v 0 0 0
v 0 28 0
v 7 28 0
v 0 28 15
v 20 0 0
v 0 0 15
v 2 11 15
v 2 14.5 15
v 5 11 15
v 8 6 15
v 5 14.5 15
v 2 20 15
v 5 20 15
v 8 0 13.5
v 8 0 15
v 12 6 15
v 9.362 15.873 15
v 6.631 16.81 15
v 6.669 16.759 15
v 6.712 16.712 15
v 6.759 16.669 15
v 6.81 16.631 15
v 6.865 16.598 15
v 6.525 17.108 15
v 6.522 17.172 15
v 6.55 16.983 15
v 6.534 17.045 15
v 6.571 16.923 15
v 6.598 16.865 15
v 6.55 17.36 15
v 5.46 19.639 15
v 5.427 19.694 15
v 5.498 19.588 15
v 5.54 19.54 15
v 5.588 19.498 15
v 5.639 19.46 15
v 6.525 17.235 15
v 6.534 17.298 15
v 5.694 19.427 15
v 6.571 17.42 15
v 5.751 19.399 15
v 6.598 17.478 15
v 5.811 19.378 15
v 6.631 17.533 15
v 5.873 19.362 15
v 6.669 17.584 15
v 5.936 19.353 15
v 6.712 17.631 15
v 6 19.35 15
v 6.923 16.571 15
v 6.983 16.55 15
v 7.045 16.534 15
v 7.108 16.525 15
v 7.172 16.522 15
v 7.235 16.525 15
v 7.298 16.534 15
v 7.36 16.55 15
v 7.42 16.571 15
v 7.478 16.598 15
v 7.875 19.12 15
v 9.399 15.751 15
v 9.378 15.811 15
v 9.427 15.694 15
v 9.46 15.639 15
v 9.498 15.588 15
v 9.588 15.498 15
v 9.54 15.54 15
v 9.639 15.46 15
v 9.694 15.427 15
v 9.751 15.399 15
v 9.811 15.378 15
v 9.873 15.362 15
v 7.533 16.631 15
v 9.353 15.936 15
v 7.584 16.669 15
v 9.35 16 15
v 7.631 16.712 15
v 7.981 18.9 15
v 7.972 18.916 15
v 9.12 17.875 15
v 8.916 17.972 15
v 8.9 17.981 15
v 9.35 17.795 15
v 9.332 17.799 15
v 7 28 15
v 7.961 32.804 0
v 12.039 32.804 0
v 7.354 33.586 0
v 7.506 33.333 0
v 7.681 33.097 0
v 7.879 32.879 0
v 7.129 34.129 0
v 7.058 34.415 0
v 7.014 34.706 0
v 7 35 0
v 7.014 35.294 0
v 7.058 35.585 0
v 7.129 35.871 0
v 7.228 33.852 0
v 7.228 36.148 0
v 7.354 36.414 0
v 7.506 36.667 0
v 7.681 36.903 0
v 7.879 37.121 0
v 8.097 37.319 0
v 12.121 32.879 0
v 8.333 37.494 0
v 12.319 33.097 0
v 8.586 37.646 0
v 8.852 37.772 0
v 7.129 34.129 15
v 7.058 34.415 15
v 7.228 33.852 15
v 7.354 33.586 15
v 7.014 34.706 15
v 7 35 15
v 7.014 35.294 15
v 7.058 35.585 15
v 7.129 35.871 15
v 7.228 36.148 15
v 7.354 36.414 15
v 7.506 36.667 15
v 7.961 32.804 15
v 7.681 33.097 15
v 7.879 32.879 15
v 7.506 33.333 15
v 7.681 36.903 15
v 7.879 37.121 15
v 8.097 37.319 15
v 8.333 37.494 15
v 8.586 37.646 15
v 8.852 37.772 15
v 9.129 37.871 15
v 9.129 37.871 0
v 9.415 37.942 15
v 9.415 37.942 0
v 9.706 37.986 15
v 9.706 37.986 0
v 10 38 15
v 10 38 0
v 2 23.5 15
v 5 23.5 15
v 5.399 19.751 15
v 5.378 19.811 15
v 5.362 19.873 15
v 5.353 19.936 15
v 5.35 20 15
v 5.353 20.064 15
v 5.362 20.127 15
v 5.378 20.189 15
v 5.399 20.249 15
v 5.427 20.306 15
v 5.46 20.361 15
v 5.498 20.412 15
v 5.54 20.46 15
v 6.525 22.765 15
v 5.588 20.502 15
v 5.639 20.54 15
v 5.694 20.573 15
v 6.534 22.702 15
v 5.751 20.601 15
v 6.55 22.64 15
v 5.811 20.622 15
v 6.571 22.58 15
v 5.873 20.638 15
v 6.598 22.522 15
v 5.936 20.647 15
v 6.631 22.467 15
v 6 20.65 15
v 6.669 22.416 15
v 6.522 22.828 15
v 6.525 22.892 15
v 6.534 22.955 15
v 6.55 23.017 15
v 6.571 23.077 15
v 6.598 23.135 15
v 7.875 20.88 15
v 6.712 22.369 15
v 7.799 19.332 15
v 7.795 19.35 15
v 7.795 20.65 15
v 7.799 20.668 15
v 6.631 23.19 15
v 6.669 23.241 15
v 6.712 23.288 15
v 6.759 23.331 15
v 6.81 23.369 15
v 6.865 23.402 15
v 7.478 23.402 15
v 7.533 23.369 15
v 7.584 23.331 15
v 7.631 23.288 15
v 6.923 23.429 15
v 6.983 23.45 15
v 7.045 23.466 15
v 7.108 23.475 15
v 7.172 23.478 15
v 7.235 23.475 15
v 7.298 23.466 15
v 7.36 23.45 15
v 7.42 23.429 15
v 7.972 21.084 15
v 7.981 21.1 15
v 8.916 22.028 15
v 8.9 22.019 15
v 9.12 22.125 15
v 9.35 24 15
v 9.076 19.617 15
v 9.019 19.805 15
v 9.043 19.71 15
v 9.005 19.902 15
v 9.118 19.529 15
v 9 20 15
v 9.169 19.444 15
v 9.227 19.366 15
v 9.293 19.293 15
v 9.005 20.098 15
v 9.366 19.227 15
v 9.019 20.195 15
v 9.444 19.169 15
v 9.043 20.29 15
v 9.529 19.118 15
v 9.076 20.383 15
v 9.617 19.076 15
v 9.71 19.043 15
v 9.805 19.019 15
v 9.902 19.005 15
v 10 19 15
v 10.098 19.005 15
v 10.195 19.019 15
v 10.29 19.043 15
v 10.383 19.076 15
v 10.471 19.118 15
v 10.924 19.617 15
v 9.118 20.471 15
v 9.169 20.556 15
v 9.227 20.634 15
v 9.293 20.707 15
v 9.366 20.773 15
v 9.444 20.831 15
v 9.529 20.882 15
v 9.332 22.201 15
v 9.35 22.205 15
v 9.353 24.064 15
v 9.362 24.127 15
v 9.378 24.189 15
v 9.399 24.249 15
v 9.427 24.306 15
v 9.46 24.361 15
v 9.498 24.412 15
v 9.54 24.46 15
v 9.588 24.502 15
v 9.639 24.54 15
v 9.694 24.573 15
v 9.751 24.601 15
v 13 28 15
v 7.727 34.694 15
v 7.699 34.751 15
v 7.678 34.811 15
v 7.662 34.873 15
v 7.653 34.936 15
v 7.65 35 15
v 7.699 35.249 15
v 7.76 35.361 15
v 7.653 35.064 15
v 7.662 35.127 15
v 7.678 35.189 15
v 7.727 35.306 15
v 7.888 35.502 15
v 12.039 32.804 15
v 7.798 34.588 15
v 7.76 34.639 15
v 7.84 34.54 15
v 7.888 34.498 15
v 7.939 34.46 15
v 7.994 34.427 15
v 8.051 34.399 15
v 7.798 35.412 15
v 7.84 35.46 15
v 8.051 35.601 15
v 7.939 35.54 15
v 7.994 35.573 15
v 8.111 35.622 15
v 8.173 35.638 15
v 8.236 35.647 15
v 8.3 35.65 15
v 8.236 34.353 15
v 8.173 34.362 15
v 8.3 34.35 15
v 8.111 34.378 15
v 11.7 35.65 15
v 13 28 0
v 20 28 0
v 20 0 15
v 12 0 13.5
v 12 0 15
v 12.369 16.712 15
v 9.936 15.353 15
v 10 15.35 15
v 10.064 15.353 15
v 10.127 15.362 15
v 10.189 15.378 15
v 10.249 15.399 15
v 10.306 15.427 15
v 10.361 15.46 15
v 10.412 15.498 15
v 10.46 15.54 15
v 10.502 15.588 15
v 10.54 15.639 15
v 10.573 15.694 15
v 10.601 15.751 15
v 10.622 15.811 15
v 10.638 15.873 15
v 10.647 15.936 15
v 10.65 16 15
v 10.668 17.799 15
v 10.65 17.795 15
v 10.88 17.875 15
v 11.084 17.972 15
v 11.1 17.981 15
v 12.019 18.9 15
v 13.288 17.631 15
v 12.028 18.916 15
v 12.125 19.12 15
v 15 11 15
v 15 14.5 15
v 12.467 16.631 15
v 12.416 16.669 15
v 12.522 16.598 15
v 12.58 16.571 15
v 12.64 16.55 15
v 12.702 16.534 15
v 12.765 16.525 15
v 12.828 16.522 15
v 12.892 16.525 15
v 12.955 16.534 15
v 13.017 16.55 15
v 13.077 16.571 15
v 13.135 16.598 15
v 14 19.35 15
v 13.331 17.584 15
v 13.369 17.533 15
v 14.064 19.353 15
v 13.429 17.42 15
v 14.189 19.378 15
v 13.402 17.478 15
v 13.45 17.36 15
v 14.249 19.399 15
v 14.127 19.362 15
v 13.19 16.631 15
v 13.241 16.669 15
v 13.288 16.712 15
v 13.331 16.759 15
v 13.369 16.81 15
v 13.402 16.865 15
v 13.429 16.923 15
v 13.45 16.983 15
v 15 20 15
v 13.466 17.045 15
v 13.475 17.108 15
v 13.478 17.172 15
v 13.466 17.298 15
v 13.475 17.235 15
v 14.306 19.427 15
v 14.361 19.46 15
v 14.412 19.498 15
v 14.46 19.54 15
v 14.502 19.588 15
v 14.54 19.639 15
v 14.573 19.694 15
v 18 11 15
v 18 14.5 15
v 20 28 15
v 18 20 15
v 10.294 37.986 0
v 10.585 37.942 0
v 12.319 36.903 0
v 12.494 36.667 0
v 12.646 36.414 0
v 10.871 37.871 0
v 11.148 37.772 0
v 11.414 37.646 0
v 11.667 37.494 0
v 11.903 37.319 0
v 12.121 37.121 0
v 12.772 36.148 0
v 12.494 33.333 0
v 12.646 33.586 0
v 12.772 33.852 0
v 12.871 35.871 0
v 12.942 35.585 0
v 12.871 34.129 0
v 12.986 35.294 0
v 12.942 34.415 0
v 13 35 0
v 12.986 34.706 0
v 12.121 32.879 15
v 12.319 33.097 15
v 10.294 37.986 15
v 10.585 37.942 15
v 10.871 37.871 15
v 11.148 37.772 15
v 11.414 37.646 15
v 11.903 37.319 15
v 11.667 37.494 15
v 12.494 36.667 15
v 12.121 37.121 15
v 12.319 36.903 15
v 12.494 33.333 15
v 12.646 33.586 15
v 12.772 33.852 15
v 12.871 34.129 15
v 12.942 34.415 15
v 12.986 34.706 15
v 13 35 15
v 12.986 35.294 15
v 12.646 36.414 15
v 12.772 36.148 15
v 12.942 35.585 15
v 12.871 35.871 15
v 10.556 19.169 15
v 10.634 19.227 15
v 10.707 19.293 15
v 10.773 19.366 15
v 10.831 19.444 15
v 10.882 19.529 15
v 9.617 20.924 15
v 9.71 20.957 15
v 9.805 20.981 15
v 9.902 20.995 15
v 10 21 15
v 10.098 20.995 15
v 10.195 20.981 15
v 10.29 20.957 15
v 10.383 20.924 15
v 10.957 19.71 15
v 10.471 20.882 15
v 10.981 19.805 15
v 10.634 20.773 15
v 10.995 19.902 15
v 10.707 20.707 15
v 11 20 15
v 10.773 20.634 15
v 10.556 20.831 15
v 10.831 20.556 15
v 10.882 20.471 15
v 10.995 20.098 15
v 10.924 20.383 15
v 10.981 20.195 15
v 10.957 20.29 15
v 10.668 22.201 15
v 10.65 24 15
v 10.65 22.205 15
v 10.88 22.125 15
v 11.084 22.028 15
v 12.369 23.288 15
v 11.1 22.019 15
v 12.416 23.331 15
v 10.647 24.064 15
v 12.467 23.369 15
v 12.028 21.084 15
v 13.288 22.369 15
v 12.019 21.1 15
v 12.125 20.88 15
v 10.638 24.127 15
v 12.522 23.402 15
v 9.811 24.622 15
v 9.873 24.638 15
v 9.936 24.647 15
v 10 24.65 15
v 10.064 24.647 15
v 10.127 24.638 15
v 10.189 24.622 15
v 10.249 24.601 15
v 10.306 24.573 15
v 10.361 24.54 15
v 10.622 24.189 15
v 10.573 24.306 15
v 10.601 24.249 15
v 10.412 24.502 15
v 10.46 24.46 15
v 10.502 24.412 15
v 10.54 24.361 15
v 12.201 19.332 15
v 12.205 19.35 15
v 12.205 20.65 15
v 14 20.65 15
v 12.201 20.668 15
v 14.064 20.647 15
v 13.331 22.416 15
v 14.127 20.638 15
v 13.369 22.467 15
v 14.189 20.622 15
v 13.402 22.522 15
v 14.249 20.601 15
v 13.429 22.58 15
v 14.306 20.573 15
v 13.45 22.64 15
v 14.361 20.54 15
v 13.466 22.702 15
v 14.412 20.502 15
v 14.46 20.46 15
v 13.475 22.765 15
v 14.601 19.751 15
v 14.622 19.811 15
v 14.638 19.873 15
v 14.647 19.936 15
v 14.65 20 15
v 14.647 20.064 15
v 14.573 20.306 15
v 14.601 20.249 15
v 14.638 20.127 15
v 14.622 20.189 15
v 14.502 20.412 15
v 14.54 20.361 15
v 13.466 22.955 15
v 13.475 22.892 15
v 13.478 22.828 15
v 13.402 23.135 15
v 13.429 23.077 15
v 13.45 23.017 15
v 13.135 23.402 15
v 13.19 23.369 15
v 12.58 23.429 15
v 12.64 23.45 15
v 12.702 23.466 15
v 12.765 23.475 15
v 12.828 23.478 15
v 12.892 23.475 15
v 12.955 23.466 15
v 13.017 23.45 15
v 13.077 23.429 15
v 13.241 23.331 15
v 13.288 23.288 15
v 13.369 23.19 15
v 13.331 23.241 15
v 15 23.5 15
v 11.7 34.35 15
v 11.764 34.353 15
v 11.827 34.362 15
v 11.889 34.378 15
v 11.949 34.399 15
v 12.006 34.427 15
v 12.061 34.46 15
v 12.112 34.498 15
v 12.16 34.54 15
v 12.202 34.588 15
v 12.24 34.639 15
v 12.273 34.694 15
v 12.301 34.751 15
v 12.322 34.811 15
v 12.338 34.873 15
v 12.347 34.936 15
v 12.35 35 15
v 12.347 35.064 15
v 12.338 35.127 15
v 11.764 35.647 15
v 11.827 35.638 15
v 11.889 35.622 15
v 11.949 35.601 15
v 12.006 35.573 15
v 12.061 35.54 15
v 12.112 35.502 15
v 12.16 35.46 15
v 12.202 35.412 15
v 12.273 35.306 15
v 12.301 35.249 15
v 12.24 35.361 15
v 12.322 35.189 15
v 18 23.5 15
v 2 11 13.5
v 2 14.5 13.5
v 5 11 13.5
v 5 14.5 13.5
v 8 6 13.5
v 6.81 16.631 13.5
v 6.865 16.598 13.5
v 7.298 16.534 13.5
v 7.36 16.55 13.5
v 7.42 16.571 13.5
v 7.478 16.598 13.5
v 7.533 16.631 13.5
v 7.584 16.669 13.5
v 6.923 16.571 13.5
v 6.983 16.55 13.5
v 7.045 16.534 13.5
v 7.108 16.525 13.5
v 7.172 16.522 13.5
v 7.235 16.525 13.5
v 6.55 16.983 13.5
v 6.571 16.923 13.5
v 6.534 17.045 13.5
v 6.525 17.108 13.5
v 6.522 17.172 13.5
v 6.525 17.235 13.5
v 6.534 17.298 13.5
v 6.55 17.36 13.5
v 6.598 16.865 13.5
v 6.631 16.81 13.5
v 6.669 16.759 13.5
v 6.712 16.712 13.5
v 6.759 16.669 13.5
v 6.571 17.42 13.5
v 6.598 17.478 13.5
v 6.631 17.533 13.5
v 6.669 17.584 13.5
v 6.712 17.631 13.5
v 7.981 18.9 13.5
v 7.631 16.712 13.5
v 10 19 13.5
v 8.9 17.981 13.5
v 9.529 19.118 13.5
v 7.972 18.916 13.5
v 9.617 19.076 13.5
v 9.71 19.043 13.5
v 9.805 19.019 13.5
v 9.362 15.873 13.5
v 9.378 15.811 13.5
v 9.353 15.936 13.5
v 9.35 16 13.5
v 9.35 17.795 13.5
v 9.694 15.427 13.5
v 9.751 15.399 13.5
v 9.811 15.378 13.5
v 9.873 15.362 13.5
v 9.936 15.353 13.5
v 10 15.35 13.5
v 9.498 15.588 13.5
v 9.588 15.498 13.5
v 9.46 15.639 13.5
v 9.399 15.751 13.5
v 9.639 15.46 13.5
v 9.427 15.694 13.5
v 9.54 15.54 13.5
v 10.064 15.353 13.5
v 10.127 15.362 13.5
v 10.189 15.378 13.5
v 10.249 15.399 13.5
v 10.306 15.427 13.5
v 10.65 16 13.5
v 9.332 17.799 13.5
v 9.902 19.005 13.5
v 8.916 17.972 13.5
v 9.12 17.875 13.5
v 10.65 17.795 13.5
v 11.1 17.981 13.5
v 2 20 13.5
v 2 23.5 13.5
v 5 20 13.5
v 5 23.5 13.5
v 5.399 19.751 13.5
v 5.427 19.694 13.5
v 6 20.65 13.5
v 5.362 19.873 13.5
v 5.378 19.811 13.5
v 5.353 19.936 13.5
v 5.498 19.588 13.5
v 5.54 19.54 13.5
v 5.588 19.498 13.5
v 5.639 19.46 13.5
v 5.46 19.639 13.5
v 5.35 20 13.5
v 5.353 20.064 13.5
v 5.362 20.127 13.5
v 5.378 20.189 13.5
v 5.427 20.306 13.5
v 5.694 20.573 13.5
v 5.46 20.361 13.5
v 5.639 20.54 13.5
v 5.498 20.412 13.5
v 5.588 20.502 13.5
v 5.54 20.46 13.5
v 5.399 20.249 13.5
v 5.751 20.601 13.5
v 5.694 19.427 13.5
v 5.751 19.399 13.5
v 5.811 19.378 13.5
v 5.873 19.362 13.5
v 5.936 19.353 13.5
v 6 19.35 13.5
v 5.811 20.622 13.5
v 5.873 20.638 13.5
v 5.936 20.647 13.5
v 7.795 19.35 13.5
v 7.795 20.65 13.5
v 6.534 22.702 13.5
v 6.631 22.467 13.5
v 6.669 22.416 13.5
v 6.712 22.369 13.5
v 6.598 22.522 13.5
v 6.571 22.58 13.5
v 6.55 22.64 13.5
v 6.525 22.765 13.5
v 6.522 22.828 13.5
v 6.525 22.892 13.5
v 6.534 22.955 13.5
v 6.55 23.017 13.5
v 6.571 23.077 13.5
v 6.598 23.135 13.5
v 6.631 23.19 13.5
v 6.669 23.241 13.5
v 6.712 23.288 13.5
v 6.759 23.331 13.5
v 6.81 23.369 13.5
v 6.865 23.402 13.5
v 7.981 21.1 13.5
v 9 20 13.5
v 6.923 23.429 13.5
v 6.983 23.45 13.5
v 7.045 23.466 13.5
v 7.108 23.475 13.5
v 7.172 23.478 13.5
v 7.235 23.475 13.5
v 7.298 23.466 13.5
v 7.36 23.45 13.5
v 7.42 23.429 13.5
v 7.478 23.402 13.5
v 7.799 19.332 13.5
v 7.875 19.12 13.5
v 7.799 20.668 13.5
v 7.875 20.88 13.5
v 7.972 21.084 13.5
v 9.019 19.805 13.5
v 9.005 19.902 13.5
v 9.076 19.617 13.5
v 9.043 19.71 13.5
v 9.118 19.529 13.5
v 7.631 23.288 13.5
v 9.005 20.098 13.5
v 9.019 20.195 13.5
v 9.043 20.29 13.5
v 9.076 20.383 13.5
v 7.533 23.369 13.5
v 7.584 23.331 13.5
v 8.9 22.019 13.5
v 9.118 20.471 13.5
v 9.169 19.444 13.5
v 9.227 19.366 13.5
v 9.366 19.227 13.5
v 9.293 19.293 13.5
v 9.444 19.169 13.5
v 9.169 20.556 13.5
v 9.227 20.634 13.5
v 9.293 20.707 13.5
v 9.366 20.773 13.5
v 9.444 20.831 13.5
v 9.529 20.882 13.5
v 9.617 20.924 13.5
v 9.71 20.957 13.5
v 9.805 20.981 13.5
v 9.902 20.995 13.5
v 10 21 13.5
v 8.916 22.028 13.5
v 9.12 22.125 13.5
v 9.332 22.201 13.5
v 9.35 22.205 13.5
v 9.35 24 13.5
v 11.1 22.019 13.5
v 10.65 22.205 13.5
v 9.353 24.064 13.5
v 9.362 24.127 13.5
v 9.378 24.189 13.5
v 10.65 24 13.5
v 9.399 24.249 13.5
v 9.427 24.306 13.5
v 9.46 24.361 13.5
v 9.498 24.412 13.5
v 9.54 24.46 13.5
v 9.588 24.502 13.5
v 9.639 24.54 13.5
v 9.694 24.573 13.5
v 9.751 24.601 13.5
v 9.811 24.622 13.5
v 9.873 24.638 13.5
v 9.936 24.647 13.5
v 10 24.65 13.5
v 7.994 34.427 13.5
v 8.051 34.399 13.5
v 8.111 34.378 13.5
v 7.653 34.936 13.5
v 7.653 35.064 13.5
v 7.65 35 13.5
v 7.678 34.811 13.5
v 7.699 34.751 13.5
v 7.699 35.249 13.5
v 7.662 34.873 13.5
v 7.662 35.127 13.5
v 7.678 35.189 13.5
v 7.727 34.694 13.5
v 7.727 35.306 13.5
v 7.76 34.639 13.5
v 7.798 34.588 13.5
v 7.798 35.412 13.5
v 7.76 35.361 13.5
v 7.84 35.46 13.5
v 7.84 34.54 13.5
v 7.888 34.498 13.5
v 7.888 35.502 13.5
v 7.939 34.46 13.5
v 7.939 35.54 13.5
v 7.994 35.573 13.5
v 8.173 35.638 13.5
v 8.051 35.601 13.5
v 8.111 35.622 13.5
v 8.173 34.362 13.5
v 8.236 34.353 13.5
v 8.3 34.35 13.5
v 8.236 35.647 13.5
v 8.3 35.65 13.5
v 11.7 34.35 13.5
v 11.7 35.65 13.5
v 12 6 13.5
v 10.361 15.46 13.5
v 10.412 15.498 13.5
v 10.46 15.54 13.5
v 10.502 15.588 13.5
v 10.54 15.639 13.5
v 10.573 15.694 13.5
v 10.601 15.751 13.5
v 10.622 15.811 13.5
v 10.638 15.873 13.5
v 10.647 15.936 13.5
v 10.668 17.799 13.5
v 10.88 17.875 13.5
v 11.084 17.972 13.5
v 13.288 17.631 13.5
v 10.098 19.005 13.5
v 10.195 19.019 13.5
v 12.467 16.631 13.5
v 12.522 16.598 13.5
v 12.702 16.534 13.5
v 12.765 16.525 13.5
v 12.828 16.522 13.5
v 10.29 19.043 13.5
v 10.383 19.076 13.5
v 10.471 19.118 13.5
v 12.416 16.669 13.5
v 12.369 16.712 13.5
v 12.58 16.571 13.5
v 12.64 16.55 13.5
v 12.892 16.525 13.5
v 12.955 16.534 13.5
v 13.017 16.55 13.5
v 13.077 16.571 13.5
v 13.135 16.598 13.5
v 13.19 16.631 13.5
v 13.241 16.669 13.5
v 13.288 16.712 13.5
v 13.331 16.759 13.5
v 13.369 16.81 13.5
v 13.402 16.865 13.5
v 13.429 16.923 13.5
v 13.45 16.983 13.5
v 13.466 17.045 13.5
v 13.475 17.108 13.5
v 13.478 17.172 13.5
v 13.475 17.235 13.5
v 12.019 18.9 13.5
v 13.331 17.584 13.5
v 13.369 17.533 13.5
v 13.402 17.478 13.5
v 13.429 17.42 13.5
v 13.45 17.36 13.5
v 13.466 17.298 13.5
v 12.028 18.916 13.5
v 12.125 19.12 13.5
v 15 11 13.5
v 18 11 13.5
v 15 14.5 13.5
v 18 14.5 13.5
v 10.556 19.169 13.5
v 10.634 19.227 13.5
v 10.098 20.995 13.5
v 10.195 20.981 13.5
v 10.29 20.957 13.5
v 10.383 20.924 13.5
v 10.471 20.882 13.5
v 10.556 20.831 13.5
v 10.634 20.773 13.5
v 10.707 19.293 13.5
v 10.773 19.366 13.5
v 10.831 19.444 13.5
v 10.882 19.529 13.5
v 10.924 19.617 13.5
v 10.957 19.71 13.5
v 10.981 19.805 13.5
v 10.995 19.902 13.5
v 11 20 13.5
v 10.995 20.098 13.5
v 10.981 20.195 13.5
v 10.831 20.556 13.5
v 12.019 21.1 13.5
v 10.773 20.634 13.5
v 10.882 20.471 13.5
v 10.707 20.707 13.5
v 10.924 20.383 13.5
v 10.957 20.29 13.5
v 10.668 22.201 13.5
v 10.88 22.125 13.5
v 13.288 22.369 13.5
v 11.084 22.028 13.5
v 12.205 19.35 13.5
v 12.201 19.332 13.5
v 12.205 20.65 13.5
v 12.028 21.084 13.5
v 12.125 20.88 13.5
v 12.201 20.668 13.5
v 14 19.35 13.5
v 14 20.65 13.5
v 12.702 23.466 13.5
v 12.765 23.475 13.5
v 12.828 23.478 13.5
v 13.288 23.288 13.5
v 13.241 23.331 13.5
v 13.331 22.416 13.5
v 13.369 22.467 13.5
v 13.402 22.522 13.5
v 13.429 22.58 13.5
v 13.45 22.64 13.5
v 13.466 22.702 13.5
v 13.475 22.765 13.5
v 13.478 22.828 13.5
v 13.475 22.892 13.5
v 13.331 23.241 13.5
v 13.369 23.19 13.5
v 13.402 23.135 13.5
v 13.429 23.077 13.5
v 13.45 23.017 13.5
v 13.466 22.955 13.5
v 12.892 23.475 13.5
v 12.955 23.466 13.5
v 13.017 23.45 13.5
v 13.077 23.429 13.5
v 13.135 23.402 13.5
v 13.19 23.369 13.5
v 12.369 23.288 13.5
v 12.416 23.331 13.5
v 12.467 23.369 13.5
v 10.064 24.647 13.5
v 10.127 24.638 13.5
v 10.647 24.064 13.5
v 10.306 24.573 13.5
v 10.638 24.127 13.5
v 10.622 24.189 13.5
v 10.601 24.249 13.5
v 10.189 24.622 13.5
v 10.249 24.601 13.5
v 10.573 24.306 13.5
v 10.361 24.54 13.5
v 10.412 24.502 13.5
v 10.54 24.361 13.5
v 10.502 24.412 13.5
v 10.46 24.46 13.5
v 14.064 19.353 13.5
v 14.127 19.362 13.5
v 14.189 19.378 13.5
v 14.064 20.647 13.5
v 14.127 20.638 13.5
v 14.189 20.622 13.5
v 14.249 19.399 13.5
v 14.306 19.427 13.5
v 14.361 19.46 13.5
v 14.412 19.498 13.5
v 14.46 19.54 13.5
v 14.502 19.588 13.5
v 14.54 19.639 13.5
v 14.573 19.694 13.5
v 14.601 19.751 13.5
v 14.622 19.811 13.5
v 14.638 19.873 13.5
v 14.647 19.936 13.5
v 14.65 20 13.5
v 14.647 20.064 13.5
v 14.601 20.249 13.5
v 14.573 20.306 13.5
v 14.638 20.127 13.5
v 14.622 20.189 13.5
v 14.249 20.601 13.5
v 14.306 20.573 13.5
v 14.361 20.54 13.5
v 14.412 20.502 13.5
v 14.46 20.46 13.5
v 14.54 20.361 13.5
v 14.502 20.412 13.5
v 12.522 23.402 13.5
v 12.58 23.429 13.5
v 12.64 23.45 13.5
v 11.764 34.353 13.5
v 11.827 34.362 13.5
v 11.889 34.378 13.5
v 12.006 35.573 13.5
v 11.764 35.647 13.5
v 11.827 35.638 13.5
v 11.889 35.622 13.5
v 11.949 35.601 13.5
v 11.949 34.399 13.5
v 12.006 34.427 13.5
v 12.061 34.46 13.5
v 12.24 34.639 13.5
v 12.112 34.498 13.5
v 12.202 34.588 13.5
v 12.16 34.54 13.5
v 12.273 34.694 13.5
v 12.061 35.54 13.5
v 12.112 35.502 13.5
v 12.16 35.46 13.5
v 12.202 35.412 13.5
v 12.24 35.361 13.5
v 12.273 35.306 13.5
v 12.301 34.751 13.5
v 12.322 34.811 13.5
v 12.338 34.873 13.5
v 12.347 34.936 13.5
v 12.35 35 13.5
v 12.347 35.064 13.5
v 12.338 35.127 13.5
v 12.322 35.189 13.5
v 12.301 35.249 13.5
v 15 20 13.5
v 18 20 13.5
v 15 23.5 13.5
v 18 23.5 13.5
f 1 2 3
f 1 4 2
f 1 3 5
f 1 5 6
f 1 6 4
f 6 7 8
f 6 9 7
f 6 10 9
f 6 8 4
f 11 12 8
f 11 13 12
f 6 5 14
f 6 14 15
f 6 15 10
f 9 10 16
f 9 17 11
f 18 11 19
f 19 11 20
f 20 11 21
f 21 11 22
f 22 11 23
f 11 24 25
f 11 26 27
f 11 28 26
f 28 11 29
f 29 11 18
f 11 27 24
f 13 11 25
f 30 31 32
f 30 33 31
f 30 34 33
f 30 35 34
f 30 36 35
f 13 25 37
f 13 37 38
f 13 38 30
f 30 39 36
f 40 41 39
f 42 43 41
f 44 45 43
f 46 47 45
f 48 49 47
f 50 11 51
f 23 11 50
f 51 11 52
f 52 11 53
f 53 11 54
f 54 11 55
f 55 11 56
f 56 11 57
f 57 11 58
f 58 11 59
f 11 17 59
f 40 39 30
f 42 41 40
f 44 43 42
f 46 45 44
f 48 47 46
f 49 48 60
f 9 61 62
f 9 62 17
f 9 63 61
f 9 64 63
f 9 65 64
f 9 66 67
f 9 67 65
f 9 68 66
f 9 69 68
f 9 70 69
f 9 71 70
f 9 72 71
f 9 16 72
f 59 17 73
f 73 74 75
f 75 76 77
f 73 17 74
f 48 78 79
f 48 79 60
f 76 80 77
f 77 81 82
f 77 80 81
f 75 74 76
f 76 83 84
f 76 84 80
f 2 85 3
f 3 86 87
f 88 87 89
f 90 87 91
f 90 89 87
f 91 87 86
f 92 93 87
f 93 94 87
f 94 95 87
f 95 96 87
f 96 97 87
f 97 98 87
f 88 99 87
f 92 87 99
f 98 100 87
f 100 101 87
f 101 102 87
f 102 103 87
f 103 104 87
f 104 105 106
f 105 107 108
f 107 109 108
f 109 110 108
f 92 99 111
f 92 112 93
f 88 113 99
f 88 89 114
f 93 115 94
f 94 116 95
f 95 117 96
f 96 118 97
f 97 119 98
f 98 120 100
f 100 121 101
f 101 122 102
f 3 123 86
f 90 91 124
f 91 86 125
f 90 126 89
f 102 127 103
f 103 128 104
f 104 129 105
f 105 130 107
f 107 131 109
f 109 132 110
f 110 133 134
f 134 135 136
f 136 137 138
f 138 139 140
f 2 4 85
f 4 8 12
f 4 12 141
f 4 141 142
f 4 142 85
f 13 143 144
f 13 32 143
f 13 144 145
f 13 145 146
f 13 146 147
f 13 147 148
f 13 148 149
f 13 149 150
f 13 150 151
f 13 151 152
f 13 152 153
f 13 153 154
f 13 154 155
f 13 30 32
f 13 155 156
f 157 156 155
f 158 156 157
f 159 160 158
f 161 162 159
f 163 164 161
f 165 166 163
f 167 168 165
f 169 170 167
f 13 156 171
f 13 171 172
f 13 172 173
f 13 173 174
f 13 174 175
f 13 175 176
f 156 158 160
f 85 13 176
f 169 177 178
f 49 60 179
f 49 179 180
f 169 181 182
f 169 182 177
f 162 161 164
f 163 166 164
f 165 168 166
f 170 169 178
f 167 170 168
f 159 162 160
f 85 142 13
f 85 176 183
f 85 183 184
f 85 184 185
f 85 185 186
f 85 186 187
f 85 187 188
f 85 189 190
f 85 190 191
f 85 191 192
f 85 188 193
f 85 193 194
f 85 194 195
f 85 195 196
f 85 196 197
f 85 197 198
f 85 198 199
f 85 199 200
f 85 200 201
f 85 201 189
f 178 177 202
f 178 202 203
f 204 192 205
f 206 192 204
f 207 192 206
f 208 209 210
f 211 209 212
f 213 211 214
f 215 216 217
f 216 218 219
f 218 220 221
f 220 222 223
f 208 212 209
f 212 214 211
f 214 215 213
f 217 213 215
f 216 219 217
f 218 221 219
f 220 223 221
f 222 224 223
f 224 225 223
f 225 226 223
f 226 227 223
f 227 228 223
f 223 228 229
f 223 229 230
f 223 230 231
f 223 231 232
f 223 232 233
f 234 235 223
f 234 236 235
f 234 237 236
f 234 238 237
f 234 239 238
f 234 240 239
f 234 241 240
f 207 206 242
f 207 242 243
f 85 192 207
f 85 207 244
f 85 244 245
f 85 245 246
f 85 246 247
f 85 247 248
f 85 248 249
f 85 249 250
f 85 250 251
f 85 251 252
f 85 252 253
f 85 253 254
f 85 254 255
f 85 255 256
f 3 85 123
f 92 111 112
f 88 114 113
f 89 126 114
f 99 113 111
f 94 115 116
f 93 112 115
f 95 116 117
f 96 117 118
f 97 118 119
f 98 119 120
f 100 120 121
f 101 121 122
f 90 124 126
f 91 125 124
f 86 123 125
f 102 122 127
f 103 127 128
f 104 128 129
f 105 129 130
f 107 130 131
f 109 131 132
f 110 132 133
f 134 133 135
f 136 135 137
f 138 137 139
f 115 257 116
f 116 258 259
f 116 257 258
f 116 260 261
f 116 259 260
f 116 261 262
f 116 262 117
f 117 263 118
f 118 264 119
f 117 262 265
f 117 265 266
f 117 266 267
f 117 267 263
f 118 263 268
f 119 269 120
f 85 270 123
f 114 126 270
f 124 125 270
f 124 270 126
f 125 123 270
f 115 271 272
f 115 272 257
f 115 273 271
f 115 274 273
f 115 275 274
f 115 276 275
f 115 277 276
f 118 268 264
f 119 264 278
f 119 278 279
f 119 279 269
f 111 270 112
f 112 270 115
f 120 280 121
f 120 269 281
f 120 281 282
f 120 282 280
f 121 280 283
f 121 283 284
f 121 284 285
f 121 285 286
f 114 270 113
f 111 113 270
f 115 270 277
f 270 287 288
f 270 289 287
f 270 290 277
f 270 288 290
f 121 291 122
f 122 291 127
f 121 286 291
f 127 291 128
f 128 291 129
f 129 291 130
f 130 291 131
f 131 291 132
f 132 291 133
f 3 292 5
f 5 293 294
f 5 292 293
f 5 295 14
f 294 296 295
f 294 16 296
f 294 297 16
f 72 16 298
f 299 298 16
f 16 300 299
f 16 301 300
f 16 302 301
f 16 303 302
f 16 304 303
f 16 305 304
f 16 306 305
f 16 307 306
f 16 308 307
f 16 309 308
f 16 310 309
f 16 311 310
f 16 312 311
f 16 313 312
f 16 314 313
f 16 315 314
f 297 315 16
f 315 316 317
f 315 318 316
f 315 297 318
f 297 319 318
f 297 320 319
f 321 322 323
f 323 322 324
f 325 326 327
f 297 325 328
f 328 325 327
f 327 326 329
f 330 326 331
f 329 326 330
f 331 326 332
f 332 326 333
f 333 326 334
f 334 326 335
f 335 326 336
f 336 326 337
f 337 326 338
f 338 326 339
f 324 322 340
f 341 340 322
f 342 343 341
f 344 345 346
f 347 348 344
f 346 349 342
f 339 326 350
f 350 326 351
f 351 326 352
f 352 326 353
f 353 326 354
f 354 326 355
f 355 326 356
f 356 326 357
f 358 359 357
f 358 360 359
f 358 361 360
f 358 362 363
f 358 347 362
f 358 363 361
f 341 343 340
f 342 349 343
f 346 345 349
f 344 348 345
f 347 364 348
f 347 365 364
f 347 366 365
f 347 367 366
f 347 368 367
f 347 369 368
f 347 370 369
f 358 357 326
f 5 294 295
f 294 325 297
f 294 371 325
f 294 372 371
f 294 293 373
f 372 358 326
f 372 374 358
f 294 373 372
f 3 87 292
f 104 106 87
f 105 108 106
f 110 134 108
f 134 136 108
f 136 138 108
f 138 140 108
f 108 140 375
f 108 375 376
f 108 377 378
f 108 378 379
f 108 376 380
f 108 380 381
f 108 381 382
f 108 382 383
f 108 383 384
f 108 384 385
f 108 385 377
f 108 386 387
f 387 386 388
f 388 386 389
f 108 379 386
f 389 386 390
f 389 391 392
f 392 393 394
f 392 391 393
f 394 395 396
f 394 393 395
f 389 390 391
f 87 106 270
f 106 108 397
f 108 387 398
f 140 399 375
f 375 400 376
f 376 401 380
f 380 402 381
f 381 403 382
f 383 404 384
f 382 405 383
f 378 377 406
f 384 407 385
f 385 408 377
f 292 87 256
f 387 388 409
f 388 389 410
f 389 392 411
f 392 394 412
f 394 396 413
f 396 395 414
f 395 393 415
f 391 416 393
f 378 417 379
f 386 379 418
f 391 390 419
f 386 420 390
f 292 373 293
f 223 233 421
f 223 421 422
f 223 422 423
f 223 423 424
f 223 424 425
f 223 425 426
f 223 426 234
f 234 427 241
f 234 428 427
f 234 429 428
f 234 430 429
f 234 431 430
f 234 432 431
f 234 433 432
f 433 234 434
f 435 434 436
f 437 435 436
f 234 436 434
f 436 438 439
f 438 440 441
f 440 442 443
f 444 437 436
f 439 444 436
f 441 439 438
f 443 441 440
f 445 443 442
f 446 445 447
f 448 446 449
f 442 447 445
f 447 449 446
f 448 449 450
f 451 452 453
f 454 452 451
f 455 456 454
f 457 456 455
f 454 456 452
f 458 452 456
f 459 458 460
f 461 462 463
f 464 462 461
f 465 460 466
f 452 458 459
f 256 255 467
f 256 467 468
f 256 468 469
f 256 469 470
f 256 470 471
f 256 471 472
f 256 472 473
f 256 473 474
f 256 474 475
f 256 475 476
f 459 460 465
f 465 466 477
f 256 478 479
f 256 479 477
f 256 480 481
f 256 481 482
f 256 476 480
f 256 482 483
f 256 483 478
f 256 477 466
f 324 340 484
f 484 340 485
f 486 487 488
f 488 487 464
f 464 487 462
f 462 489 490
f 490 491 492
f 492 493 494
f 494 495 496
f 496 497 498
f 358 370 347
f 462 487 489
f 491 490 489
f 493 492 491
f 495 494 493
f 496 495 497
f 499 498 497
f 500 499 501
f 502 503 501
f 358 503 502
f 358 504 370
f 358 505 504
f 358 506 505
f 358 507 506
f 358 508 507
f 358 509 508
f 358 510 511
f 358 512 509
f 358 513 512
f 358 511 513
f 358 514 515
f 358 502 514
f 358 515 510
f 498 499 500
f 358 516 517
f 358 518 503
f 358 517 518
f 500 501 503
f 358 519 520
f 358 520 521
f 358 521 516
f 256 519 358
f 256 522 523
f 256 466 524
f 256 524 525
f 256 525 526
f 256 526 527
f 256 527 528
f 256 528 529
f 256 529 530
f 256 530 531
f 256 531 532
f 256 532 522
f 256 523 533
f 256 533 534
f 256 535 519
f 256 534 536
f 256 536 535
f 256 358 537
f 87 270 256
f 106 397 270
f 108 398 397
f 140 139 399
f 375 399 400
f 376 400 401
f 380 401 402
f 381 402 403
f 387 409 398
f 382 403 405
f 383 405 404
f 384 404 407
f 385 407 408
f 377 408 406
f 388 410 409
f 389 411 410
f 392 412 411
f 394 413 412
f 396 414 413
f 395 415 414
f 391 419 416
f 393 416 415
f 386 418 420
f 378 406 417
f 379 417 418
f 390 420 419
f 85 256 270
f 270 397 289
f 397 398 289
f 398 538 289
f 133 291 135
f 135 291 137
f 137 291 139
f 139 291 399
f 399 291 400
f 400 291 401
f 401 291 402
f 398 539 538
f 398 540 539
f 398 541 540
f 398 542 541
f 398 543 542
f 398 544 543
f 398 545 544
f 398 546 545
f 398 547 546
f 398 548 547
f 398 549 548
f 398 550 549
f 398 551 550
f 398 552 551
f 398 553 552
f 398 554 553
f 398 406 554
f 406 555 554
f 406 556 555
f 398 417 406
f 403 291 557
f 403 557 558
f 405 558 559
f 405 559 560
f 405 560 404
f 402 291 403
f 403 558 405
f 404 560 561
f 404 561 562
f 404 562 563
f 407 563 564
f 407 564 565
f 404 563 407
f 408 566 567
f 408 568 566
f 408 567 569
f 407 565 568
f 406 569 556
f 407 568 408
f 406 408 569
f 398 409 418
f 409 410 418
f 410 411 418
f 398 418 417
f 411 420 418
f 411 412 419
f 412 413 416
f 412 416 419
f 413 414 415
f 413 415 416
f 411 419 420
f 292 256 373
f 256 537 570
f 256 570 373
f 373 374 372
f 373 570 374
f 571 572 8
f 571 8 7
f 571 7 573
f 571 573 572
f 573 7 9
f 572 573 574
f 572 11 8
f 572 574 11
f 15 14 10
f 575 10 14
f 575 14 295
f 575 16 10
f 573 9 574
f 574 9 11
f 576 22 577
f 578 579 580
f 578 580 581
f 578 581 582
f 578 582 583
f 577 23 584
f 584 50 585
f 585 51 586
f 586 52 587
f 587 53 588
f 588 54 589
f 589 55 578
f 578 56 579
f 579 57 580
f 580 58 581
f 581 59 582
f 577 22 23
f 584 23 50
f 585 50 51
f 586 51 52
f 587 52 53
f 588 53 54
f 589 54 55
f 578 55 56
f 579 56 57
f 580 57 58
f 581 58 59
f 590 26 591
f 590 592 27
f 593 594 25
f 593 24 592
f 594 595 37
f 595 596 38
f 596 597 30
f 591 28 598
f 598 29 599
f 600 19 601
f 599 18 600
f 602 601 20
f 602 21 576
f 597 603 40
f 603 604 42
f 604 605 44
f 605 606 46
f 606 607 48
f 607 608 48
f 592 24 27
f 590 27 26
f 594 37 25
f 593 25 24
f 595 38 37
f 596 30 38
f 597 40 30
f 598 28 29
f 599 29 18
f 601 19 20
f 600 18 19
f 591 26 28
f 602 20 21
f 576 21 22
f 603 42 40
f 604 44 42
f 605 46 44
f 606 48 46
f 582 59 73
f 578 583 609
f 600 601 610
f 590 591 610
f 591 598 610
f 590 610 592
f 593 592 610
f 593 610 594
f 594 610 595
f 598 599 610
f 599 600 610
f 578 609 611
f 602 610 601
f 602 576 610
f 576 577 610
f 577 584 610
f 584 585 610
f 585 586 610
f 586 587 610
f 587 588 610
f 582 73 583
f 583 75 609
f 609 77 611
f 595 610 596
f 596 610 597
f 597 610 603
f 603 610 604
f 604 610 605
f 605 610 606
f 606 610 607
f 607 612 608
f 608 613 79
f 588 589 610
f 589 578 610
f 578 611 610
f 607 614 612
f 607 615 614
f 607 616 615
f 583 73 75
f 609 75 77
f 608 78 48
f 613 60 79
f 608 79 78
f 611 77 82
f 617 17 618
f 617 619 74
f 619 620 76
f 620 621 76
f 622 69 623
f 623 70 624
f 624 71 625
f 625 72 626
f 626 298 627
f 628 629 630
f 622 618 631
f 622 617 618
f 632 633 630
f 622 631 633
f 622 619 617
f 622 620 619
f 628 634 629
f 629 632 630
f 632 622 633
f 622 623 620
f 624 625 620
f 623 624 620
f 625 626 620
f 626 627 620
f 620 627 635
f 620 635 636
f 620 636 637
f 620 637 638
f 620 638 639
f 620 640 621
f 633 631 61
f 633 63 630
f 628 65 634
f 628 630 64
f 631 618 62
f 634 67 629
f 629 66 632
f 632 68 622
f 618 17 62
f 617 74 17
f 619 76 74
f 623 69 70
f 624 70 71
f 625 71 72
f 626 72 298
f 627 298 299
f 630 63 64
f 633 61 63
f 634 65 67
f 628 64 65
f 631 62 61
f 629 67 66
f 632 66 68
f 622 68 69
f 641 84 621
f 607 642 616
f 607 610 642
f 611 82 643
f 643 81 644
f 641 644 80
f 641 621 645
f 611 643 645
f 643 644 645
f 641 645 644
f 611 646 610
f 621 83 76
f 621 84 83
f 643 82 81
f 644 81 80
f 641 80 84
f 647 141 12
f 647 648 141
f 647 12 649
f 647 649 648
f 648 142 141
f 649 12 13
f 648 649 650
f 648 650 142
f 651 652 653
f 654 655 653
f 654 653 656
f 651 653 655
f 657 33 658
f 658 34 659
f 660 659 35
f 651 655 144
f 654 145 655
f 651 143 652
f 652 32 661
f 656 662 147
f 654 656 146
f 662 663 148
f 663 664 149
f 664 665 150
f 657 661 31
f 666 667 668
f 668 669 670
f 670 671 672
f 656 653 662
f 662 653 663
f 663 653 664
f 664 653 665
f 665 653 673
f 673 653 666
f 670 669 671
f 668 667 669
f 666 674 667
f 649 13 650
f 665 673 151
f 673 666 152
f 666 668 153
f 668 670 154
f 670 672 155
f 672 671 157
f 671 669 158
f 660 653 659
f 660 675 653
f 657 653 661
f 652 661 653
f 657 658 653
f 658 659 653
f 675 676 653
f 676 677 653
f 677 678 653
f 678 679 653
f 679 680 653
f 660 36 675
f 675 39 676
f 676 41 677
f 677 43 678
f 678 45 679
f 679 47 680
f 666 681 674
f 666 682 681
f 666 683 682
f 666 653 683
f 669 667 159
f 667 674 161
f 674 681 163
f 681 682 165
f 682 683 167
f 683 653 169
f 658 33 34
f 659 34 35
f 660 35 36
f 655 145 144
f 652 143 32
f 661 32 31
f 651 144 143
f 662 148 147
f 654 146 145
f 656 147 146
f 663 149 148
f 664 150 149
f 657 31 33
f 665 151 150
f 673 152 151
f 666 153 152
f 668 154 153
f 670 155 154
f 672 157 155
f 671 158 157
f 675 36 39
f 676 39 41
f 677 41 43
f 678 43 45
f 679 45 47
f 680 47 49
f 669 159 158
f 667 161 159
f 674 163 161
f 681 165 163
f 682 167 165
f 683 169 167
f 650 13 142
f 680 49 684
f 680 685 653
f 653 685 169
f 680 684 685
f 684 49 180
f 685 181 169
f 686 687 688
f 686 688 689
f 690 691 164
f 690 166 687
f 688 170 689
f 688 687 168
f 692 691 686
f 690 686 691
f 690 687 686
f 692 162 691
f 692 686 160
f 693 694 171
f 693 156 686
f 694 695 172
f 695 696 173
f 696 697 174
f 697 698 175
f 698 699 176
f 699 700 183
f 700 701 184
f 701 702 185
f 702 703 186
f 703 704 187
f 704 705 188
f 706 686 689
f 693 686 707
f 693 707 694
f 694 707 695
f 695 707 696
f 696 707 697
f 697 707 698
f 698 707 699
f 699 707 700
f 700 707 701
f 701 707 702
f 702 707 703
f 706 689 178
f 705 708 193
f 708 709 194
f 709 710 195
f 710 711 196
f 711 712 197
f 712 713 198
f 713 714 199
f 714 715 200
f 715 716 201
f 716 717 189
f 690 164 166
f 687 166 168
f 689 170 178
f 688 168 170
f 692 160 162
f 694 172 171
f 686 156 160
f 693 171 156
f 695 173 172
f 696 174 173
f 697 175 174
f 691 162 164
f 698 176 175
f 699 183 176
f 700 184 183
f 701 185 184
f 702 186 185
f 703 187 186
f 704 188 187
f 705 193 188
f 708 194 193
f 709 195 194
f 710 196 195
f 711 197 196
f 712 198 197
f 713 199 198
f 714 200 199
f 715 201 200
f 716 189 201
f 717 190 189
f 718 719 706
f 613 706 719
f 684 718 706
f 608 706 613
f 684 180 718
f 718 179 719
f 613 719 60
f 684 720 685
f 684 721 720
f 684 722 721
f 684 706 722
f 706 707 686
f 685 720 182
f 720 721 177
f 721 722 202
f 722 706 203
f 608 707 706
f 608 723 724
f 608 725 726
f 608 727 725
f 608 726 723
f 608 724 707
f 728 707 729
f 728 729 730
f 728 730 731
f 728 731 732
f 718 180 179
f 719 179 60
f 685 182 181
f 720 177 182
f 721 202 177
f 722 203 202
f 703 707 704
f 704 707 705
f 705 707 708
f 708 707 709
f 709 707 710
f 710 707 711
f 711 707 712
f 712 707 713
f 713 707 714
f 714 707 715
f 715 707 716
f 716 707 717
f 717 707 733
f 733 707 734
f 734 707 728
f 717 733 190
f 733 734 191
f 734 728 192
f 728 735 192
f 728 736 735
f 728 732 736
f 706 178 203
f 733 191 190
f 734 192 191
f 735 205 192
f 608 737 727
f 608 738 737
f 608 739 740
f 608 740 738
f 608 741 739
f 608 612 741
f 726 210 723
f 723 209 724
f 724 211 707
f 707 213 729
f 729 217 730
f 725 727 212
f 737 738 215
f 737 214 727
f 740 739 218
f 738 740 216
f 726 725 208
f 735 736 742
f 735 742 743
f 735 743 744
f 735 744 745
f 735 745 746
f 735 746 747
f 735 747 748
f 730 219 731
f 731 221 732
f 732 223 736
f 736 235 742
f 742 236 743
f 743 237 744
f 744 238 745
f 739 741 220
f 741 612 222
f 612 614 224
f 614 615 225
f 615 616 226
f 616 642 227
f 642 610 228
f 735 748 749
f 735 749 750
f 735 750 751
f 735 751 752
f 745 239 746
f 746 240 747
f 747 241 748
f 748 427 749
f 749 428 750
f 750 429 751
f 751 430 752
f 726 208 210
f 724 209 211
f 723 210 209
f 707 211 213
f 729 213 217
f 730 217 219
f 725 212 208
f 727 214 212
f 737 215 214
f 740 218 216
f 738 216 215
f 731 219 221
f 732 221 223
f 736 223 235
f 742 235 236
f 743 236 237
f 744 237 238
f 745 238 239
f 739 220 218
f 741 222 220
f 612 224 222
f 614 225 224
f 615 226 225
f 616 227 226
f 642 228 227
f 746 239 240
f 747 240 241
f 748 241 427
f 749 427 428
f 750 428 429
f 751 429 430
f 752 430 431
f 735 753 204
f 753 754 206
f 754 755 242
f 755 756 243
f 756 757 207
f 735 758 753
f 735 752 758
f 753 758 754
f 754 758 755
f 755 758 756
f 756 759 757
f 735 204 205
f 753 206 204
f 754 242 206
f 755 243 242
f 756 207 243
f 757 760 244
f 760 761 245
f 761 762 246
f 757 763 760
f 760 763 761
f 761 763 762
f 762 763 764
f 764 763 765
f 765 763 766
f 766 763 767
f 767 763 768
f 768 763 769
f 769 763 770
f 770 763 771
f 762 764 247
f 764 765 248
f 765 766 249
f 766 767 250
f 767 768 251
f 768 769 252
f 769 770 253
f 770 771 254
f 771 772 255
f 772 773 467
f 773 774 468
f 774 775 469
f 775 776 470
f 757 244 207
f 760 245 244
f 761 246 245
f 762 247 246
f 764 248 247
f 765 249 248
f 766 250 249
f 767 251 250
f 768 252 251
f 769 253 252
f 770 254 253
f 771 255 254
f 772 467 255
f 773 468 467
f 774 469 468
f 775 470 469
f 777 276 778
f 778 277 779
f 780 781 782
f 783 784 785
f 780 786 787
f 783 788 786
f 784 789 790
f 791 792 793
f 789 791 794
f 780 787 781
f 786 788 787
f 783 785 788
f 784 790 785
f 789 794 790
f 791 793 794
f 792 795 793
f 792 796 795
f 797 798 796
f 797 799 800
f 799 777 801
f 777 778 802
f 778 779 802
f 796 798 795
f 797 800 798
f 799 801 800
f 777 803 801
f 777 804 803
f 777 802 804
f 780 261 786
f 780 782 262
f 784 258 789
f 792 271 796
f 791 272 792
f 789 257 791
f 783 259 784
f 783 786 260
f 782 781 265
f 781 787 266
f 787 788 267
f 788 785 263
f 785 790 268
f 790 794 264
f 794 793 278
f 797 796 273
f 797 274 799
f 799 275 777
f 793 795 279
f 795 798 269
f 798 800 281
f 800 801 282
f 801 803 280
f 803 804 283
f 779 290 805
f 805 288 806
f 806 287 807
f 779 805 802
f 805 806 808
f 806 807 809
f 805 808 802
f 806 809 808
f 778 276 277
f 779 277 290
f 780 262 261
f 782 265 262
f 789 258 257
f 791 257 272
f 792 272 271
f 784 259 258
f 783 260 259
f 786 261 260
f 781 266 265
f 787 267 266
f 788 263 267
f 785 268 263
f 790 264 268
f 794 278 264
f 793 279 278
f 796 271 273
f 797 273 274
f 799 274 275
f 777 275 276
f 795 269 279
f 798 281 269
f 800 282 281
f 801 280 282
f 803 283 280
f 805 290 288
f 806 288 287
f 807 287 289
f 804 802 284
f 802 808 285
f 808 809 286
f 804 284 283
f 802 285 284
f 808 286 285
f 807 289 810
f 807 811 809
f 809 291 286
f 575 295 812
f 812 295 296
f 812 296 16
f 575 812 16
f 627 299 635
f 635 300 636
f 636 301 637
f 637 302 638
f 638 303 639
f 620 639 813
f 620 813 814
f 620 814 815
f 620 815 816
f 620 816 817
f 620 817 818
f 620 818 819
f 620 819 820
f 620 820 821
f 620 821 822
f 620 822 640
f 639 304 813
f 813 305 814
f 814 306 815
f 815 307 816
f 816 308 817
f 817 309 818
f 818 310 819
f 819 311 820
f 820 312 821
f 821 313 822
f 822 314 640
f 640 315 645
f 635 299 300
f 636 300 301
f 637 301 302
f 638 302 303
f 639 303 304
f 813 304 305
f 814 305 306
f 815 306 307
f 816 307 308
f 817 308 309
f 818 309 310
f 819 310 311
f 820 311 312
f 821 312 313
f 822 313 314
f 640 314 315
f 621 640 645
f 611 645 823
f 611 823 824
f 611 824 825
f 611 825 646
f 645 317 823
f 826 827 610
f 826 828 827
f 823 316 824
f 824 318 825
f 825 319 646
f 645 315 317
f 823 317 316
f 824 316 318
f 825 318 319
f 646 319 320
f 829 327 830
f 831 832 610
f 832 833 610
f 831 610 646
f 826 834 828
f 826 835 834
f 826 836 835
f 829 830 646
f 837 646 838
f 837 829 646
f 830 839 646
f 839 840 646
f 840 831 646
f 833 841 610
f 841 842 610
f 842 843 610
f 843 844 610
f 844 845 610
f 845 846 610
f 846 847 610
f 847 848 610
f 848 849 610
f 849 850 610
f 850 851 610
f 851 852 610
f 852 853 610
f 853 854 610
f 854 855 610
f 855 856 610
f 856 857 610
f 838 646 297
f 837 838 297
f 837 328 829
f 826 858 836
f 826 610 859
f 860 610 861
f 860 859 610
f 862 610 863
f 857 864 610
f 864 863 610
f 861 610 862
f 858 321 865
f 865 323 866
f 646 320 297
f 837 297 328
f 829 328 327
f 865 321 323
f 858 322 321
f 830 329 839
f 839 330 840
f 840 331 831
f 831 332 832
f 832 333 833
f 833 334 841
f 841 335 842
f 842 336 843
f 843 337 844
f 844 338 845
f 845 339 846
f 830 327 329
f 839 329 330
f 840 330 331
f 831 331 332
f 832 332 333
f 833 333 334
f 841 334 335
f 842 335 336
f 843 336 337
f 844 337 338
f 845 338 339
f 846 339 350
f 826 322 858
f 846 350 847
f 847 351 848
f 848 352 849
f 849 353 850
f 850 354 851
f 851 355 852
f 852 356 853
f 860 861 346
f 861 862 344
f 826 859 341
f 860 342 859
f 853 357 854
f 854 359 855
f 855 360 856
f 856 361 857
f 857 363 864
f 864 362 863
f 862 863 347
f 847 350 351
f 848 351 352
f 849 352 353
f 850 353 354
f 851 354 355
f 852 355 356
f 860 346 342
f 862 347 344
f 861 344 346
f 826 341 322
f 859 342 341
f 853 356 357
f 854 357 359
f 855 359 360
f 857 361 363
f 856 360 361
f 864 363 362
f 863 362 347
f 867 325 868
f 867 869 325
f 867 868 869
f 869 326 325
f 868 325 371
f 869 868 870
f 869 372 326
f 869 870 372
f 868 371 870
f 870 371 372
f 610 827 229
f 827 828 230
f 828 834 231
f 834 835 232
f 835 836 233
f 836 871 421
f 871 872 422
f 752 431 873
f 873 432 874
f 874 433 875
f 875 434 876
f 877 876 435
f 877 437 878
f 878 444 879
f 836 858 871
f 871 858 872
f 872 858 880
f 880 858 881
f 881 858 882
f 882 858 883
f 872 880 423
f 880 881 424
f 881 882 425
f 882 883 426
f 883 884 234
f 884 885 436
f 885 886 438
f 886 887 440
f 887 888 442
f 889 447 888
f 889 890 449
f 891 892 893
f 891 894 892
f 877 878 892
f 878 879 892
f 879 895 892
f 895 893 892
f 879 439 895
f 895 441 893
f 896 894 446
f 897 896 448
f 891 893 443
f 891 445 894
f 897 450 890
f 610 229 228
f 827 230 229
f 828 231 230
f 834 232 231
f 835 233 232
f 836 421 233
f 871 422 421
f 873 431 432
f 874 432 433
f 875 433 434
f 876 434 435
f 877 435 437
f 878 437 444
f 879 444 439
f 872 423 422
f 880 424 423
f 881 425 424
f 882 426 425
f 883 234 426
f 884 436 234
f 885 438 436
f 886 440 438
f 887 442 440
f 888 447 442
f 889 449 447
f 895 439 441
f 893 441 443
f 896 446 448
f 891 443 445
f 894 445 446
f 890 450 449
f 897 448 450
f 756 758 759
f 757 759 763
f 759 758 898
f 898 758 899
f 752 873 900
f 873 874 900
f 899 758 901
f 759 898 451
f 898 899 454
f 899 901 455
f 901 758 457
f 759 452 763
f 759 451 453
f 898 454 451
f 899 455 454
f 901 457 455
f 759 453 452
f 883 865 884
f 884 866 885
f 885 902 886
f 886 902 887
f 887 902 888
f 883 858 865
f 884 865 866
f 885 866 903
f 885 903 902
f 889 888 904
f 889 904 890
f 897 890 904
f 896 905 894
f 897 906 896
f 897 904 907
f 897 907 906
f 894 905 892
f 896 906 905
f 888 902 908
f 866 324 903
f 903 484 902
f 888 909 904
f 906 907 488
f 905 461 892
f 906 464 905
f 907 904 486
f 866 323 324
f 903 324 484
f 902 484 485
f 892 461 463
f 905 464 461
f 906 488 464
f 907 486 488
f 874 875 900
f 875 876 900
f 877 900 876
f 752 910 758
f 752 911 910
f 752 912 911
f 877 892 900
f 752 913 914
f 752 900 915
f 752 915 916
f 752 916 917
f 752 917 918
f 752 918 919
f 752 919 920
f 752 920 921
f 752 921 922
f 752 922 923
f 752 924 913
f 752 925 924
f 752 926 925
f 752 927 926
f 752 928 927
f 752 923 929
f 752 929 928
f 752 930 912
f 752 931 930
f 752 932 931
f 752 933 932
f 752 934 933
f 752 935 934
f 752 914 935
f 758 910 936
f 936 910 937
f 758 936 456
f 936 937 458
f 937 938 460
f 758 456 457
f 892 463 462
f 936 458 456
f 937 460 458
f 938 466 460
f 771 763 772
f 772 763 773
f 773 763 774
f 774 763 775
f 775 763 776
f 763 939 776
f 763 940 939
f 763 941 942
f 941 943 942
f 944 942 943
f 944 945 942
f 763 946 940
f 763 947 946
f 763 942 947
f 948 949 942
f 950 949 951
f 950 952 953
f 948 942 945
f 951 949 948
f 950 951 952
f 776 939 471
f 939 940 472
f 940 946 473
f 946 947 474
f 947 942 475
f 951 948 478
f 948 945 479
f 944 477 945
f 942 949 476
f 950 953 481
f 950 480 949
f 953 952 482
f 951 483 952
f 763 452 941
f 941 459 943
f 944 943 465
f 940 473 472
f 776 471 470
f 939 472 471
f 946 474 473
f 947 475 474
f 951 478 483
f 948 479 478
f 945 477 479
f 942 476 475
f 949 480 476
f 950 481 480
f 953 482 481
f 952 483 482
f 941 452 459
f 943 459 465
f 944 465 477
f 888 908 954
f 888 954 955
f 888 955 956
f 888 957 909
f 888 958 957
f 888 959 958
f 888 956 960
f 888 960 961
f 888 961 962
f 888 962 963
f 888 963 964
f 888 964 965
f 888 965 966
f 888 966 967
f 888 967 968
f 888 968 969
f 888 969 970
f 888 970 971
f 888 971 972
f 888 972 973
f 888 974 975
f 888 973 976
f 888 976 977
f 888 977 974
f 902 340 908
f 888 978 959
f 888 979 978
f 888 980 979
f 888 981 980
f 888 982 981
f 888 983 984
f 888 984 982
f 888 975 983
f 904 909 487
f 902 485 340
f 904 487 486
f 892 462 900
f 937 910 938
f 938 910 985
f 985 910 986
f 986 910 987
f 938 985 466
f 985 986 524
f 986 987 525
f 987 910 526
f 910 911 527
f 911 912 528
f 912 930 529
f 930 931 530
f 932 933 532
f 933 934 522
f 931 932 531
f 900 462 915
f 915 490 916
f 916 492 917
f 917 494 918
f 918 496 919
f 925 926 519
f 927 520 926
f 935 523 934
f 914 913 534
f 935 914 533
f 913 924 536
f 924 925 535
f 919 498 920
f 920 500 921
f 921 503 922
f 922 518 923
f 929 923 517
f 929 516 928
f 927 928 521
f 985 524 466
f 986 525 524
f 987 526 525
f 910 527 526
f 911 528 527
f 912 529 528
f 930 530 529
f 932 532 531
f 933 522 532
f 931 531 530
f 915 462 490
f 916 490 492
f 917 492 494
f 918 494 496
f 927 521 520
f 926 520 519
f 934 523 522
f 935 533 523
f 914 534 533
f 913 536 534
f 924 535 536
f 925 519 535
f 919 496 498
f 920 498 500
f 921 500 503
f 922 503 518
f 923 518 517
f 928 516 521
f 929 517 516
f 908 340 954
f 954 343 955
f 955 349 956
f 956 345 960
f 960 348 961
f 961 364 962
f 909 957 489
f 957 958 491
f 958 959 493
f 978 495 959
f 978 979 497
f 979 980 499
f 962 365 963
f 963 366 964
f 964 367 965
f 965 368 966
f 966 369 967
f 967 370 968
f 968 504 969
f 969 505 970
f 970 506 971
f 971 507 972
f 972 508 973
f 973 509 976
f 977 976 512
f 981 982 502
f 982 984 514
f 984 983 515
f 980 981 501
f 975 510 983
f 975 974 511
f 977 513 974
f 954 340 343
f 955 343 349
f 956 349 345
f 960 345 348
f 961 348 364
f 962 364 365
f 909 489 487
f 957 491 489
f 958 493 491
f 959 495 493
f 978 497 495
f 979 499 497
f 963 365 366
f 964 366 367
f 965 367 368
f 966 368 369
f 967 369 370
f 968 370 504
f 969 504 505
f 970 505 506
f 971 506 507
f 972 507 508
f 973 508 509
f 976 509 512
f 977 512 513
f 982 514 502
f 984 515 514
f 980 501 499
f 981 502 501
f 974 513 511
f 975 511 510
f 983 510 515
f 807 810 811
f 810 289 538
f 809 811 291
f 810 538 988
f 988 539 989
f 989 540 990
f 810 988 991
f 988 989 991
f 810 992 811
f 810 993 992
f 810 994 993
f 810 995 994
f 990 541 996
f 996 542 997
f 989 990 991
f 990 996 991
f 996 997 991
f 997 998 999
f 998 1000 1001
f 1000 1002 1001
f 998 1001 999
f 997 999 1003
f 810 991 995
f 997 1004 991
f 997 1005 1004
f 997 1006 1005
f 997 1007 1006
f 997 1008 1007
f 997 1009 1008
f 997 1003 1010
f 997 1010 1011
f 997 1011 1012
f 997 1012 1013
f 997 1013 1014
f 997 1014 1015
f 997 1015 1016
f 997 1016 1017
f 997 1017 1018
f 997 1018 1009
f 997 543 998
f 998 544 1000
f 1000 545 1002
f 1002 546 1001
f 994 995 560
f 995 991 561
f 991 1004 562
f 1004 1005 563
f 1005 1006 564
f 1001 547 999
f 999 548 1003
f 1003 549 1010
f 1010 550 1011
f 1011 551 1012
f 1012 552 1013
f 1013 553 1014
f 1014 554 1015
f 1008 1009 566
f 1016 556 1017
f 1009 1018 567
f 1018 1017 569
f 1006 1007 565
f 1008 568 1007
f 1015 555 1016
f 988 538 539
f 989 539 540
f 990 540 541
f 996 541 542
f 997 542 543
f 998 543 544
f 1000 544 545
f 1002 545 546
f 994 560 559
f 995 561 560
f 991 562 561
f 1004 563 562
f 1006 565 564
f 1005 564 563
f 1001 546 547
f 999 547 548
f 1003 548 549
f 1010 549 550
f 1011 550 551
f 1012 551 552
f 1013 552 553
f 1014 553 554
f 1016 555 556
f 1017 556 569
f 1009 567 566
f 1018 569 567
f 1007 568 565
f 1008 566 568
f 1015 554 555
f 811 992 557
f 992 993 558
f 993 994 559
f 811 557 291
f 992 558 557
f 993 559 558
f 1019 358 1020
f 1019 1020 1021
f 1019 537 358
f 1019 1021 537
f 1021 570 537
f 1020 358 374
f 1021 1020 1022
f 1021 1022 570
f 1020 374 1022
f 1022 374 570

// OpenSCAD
// Facade game piece in mm: X width, Y height, Z depth.
// Place Z=0 flat on the build plate; all recessed details are 1.5 mm deep.
$fn=64;
module rect(x,y,w,h){translate([x,y]) square([w,h]);}
module disk(x,y,r){translate([x,y]) circle(r=r);}
module line(a,b,w=1.5){hull(){translate(a) circle(d=w);translate(b) circle(d=w);}}
module path(points,w=1.5){for(i=[0:len(points)-2]) line(points[i],points[i+1],w);}
module cross_icon(x,y,size=6,bar=1.8){union(){rect(x-size/2,y-bar/2,size,bar);rect(x-bar/2,y-size/2,bar,size);}}
module tank(x,y,w,h){union(){rect(x,y,w,h-w/2);disk(x+w/2,y+h-w/2,w/2);}}
module ring(x,y,r,w=1.3){difference(){disk(x,y,r);disk(x,y,r-w);}}

module silhouette(){
union(){rect(0,0,20,28);polygon([[7,28],[13,28],[12,33],[8,33]]);disk(10,35,3);}
}
module facade_recesses(){union(){
ring(10,20,2.3,1.3);
for(a=[0:45:315]) line([10+2*cos(a),20+2*sin(a)],[10+4*cos(a),20+4*sin(a)],1.3);
for(x=[2,15]) for(y=[11,20]) rect(x,y,3,3.5);
rect(8,0,4,6);
line([8.3,35],[11.7,35],1.3);
}}
difference(){
 linear_extrude(height=15) silhouette();
 translate([0,0,13.5]) linear_extrude(height=2) facade_recesses();
}
